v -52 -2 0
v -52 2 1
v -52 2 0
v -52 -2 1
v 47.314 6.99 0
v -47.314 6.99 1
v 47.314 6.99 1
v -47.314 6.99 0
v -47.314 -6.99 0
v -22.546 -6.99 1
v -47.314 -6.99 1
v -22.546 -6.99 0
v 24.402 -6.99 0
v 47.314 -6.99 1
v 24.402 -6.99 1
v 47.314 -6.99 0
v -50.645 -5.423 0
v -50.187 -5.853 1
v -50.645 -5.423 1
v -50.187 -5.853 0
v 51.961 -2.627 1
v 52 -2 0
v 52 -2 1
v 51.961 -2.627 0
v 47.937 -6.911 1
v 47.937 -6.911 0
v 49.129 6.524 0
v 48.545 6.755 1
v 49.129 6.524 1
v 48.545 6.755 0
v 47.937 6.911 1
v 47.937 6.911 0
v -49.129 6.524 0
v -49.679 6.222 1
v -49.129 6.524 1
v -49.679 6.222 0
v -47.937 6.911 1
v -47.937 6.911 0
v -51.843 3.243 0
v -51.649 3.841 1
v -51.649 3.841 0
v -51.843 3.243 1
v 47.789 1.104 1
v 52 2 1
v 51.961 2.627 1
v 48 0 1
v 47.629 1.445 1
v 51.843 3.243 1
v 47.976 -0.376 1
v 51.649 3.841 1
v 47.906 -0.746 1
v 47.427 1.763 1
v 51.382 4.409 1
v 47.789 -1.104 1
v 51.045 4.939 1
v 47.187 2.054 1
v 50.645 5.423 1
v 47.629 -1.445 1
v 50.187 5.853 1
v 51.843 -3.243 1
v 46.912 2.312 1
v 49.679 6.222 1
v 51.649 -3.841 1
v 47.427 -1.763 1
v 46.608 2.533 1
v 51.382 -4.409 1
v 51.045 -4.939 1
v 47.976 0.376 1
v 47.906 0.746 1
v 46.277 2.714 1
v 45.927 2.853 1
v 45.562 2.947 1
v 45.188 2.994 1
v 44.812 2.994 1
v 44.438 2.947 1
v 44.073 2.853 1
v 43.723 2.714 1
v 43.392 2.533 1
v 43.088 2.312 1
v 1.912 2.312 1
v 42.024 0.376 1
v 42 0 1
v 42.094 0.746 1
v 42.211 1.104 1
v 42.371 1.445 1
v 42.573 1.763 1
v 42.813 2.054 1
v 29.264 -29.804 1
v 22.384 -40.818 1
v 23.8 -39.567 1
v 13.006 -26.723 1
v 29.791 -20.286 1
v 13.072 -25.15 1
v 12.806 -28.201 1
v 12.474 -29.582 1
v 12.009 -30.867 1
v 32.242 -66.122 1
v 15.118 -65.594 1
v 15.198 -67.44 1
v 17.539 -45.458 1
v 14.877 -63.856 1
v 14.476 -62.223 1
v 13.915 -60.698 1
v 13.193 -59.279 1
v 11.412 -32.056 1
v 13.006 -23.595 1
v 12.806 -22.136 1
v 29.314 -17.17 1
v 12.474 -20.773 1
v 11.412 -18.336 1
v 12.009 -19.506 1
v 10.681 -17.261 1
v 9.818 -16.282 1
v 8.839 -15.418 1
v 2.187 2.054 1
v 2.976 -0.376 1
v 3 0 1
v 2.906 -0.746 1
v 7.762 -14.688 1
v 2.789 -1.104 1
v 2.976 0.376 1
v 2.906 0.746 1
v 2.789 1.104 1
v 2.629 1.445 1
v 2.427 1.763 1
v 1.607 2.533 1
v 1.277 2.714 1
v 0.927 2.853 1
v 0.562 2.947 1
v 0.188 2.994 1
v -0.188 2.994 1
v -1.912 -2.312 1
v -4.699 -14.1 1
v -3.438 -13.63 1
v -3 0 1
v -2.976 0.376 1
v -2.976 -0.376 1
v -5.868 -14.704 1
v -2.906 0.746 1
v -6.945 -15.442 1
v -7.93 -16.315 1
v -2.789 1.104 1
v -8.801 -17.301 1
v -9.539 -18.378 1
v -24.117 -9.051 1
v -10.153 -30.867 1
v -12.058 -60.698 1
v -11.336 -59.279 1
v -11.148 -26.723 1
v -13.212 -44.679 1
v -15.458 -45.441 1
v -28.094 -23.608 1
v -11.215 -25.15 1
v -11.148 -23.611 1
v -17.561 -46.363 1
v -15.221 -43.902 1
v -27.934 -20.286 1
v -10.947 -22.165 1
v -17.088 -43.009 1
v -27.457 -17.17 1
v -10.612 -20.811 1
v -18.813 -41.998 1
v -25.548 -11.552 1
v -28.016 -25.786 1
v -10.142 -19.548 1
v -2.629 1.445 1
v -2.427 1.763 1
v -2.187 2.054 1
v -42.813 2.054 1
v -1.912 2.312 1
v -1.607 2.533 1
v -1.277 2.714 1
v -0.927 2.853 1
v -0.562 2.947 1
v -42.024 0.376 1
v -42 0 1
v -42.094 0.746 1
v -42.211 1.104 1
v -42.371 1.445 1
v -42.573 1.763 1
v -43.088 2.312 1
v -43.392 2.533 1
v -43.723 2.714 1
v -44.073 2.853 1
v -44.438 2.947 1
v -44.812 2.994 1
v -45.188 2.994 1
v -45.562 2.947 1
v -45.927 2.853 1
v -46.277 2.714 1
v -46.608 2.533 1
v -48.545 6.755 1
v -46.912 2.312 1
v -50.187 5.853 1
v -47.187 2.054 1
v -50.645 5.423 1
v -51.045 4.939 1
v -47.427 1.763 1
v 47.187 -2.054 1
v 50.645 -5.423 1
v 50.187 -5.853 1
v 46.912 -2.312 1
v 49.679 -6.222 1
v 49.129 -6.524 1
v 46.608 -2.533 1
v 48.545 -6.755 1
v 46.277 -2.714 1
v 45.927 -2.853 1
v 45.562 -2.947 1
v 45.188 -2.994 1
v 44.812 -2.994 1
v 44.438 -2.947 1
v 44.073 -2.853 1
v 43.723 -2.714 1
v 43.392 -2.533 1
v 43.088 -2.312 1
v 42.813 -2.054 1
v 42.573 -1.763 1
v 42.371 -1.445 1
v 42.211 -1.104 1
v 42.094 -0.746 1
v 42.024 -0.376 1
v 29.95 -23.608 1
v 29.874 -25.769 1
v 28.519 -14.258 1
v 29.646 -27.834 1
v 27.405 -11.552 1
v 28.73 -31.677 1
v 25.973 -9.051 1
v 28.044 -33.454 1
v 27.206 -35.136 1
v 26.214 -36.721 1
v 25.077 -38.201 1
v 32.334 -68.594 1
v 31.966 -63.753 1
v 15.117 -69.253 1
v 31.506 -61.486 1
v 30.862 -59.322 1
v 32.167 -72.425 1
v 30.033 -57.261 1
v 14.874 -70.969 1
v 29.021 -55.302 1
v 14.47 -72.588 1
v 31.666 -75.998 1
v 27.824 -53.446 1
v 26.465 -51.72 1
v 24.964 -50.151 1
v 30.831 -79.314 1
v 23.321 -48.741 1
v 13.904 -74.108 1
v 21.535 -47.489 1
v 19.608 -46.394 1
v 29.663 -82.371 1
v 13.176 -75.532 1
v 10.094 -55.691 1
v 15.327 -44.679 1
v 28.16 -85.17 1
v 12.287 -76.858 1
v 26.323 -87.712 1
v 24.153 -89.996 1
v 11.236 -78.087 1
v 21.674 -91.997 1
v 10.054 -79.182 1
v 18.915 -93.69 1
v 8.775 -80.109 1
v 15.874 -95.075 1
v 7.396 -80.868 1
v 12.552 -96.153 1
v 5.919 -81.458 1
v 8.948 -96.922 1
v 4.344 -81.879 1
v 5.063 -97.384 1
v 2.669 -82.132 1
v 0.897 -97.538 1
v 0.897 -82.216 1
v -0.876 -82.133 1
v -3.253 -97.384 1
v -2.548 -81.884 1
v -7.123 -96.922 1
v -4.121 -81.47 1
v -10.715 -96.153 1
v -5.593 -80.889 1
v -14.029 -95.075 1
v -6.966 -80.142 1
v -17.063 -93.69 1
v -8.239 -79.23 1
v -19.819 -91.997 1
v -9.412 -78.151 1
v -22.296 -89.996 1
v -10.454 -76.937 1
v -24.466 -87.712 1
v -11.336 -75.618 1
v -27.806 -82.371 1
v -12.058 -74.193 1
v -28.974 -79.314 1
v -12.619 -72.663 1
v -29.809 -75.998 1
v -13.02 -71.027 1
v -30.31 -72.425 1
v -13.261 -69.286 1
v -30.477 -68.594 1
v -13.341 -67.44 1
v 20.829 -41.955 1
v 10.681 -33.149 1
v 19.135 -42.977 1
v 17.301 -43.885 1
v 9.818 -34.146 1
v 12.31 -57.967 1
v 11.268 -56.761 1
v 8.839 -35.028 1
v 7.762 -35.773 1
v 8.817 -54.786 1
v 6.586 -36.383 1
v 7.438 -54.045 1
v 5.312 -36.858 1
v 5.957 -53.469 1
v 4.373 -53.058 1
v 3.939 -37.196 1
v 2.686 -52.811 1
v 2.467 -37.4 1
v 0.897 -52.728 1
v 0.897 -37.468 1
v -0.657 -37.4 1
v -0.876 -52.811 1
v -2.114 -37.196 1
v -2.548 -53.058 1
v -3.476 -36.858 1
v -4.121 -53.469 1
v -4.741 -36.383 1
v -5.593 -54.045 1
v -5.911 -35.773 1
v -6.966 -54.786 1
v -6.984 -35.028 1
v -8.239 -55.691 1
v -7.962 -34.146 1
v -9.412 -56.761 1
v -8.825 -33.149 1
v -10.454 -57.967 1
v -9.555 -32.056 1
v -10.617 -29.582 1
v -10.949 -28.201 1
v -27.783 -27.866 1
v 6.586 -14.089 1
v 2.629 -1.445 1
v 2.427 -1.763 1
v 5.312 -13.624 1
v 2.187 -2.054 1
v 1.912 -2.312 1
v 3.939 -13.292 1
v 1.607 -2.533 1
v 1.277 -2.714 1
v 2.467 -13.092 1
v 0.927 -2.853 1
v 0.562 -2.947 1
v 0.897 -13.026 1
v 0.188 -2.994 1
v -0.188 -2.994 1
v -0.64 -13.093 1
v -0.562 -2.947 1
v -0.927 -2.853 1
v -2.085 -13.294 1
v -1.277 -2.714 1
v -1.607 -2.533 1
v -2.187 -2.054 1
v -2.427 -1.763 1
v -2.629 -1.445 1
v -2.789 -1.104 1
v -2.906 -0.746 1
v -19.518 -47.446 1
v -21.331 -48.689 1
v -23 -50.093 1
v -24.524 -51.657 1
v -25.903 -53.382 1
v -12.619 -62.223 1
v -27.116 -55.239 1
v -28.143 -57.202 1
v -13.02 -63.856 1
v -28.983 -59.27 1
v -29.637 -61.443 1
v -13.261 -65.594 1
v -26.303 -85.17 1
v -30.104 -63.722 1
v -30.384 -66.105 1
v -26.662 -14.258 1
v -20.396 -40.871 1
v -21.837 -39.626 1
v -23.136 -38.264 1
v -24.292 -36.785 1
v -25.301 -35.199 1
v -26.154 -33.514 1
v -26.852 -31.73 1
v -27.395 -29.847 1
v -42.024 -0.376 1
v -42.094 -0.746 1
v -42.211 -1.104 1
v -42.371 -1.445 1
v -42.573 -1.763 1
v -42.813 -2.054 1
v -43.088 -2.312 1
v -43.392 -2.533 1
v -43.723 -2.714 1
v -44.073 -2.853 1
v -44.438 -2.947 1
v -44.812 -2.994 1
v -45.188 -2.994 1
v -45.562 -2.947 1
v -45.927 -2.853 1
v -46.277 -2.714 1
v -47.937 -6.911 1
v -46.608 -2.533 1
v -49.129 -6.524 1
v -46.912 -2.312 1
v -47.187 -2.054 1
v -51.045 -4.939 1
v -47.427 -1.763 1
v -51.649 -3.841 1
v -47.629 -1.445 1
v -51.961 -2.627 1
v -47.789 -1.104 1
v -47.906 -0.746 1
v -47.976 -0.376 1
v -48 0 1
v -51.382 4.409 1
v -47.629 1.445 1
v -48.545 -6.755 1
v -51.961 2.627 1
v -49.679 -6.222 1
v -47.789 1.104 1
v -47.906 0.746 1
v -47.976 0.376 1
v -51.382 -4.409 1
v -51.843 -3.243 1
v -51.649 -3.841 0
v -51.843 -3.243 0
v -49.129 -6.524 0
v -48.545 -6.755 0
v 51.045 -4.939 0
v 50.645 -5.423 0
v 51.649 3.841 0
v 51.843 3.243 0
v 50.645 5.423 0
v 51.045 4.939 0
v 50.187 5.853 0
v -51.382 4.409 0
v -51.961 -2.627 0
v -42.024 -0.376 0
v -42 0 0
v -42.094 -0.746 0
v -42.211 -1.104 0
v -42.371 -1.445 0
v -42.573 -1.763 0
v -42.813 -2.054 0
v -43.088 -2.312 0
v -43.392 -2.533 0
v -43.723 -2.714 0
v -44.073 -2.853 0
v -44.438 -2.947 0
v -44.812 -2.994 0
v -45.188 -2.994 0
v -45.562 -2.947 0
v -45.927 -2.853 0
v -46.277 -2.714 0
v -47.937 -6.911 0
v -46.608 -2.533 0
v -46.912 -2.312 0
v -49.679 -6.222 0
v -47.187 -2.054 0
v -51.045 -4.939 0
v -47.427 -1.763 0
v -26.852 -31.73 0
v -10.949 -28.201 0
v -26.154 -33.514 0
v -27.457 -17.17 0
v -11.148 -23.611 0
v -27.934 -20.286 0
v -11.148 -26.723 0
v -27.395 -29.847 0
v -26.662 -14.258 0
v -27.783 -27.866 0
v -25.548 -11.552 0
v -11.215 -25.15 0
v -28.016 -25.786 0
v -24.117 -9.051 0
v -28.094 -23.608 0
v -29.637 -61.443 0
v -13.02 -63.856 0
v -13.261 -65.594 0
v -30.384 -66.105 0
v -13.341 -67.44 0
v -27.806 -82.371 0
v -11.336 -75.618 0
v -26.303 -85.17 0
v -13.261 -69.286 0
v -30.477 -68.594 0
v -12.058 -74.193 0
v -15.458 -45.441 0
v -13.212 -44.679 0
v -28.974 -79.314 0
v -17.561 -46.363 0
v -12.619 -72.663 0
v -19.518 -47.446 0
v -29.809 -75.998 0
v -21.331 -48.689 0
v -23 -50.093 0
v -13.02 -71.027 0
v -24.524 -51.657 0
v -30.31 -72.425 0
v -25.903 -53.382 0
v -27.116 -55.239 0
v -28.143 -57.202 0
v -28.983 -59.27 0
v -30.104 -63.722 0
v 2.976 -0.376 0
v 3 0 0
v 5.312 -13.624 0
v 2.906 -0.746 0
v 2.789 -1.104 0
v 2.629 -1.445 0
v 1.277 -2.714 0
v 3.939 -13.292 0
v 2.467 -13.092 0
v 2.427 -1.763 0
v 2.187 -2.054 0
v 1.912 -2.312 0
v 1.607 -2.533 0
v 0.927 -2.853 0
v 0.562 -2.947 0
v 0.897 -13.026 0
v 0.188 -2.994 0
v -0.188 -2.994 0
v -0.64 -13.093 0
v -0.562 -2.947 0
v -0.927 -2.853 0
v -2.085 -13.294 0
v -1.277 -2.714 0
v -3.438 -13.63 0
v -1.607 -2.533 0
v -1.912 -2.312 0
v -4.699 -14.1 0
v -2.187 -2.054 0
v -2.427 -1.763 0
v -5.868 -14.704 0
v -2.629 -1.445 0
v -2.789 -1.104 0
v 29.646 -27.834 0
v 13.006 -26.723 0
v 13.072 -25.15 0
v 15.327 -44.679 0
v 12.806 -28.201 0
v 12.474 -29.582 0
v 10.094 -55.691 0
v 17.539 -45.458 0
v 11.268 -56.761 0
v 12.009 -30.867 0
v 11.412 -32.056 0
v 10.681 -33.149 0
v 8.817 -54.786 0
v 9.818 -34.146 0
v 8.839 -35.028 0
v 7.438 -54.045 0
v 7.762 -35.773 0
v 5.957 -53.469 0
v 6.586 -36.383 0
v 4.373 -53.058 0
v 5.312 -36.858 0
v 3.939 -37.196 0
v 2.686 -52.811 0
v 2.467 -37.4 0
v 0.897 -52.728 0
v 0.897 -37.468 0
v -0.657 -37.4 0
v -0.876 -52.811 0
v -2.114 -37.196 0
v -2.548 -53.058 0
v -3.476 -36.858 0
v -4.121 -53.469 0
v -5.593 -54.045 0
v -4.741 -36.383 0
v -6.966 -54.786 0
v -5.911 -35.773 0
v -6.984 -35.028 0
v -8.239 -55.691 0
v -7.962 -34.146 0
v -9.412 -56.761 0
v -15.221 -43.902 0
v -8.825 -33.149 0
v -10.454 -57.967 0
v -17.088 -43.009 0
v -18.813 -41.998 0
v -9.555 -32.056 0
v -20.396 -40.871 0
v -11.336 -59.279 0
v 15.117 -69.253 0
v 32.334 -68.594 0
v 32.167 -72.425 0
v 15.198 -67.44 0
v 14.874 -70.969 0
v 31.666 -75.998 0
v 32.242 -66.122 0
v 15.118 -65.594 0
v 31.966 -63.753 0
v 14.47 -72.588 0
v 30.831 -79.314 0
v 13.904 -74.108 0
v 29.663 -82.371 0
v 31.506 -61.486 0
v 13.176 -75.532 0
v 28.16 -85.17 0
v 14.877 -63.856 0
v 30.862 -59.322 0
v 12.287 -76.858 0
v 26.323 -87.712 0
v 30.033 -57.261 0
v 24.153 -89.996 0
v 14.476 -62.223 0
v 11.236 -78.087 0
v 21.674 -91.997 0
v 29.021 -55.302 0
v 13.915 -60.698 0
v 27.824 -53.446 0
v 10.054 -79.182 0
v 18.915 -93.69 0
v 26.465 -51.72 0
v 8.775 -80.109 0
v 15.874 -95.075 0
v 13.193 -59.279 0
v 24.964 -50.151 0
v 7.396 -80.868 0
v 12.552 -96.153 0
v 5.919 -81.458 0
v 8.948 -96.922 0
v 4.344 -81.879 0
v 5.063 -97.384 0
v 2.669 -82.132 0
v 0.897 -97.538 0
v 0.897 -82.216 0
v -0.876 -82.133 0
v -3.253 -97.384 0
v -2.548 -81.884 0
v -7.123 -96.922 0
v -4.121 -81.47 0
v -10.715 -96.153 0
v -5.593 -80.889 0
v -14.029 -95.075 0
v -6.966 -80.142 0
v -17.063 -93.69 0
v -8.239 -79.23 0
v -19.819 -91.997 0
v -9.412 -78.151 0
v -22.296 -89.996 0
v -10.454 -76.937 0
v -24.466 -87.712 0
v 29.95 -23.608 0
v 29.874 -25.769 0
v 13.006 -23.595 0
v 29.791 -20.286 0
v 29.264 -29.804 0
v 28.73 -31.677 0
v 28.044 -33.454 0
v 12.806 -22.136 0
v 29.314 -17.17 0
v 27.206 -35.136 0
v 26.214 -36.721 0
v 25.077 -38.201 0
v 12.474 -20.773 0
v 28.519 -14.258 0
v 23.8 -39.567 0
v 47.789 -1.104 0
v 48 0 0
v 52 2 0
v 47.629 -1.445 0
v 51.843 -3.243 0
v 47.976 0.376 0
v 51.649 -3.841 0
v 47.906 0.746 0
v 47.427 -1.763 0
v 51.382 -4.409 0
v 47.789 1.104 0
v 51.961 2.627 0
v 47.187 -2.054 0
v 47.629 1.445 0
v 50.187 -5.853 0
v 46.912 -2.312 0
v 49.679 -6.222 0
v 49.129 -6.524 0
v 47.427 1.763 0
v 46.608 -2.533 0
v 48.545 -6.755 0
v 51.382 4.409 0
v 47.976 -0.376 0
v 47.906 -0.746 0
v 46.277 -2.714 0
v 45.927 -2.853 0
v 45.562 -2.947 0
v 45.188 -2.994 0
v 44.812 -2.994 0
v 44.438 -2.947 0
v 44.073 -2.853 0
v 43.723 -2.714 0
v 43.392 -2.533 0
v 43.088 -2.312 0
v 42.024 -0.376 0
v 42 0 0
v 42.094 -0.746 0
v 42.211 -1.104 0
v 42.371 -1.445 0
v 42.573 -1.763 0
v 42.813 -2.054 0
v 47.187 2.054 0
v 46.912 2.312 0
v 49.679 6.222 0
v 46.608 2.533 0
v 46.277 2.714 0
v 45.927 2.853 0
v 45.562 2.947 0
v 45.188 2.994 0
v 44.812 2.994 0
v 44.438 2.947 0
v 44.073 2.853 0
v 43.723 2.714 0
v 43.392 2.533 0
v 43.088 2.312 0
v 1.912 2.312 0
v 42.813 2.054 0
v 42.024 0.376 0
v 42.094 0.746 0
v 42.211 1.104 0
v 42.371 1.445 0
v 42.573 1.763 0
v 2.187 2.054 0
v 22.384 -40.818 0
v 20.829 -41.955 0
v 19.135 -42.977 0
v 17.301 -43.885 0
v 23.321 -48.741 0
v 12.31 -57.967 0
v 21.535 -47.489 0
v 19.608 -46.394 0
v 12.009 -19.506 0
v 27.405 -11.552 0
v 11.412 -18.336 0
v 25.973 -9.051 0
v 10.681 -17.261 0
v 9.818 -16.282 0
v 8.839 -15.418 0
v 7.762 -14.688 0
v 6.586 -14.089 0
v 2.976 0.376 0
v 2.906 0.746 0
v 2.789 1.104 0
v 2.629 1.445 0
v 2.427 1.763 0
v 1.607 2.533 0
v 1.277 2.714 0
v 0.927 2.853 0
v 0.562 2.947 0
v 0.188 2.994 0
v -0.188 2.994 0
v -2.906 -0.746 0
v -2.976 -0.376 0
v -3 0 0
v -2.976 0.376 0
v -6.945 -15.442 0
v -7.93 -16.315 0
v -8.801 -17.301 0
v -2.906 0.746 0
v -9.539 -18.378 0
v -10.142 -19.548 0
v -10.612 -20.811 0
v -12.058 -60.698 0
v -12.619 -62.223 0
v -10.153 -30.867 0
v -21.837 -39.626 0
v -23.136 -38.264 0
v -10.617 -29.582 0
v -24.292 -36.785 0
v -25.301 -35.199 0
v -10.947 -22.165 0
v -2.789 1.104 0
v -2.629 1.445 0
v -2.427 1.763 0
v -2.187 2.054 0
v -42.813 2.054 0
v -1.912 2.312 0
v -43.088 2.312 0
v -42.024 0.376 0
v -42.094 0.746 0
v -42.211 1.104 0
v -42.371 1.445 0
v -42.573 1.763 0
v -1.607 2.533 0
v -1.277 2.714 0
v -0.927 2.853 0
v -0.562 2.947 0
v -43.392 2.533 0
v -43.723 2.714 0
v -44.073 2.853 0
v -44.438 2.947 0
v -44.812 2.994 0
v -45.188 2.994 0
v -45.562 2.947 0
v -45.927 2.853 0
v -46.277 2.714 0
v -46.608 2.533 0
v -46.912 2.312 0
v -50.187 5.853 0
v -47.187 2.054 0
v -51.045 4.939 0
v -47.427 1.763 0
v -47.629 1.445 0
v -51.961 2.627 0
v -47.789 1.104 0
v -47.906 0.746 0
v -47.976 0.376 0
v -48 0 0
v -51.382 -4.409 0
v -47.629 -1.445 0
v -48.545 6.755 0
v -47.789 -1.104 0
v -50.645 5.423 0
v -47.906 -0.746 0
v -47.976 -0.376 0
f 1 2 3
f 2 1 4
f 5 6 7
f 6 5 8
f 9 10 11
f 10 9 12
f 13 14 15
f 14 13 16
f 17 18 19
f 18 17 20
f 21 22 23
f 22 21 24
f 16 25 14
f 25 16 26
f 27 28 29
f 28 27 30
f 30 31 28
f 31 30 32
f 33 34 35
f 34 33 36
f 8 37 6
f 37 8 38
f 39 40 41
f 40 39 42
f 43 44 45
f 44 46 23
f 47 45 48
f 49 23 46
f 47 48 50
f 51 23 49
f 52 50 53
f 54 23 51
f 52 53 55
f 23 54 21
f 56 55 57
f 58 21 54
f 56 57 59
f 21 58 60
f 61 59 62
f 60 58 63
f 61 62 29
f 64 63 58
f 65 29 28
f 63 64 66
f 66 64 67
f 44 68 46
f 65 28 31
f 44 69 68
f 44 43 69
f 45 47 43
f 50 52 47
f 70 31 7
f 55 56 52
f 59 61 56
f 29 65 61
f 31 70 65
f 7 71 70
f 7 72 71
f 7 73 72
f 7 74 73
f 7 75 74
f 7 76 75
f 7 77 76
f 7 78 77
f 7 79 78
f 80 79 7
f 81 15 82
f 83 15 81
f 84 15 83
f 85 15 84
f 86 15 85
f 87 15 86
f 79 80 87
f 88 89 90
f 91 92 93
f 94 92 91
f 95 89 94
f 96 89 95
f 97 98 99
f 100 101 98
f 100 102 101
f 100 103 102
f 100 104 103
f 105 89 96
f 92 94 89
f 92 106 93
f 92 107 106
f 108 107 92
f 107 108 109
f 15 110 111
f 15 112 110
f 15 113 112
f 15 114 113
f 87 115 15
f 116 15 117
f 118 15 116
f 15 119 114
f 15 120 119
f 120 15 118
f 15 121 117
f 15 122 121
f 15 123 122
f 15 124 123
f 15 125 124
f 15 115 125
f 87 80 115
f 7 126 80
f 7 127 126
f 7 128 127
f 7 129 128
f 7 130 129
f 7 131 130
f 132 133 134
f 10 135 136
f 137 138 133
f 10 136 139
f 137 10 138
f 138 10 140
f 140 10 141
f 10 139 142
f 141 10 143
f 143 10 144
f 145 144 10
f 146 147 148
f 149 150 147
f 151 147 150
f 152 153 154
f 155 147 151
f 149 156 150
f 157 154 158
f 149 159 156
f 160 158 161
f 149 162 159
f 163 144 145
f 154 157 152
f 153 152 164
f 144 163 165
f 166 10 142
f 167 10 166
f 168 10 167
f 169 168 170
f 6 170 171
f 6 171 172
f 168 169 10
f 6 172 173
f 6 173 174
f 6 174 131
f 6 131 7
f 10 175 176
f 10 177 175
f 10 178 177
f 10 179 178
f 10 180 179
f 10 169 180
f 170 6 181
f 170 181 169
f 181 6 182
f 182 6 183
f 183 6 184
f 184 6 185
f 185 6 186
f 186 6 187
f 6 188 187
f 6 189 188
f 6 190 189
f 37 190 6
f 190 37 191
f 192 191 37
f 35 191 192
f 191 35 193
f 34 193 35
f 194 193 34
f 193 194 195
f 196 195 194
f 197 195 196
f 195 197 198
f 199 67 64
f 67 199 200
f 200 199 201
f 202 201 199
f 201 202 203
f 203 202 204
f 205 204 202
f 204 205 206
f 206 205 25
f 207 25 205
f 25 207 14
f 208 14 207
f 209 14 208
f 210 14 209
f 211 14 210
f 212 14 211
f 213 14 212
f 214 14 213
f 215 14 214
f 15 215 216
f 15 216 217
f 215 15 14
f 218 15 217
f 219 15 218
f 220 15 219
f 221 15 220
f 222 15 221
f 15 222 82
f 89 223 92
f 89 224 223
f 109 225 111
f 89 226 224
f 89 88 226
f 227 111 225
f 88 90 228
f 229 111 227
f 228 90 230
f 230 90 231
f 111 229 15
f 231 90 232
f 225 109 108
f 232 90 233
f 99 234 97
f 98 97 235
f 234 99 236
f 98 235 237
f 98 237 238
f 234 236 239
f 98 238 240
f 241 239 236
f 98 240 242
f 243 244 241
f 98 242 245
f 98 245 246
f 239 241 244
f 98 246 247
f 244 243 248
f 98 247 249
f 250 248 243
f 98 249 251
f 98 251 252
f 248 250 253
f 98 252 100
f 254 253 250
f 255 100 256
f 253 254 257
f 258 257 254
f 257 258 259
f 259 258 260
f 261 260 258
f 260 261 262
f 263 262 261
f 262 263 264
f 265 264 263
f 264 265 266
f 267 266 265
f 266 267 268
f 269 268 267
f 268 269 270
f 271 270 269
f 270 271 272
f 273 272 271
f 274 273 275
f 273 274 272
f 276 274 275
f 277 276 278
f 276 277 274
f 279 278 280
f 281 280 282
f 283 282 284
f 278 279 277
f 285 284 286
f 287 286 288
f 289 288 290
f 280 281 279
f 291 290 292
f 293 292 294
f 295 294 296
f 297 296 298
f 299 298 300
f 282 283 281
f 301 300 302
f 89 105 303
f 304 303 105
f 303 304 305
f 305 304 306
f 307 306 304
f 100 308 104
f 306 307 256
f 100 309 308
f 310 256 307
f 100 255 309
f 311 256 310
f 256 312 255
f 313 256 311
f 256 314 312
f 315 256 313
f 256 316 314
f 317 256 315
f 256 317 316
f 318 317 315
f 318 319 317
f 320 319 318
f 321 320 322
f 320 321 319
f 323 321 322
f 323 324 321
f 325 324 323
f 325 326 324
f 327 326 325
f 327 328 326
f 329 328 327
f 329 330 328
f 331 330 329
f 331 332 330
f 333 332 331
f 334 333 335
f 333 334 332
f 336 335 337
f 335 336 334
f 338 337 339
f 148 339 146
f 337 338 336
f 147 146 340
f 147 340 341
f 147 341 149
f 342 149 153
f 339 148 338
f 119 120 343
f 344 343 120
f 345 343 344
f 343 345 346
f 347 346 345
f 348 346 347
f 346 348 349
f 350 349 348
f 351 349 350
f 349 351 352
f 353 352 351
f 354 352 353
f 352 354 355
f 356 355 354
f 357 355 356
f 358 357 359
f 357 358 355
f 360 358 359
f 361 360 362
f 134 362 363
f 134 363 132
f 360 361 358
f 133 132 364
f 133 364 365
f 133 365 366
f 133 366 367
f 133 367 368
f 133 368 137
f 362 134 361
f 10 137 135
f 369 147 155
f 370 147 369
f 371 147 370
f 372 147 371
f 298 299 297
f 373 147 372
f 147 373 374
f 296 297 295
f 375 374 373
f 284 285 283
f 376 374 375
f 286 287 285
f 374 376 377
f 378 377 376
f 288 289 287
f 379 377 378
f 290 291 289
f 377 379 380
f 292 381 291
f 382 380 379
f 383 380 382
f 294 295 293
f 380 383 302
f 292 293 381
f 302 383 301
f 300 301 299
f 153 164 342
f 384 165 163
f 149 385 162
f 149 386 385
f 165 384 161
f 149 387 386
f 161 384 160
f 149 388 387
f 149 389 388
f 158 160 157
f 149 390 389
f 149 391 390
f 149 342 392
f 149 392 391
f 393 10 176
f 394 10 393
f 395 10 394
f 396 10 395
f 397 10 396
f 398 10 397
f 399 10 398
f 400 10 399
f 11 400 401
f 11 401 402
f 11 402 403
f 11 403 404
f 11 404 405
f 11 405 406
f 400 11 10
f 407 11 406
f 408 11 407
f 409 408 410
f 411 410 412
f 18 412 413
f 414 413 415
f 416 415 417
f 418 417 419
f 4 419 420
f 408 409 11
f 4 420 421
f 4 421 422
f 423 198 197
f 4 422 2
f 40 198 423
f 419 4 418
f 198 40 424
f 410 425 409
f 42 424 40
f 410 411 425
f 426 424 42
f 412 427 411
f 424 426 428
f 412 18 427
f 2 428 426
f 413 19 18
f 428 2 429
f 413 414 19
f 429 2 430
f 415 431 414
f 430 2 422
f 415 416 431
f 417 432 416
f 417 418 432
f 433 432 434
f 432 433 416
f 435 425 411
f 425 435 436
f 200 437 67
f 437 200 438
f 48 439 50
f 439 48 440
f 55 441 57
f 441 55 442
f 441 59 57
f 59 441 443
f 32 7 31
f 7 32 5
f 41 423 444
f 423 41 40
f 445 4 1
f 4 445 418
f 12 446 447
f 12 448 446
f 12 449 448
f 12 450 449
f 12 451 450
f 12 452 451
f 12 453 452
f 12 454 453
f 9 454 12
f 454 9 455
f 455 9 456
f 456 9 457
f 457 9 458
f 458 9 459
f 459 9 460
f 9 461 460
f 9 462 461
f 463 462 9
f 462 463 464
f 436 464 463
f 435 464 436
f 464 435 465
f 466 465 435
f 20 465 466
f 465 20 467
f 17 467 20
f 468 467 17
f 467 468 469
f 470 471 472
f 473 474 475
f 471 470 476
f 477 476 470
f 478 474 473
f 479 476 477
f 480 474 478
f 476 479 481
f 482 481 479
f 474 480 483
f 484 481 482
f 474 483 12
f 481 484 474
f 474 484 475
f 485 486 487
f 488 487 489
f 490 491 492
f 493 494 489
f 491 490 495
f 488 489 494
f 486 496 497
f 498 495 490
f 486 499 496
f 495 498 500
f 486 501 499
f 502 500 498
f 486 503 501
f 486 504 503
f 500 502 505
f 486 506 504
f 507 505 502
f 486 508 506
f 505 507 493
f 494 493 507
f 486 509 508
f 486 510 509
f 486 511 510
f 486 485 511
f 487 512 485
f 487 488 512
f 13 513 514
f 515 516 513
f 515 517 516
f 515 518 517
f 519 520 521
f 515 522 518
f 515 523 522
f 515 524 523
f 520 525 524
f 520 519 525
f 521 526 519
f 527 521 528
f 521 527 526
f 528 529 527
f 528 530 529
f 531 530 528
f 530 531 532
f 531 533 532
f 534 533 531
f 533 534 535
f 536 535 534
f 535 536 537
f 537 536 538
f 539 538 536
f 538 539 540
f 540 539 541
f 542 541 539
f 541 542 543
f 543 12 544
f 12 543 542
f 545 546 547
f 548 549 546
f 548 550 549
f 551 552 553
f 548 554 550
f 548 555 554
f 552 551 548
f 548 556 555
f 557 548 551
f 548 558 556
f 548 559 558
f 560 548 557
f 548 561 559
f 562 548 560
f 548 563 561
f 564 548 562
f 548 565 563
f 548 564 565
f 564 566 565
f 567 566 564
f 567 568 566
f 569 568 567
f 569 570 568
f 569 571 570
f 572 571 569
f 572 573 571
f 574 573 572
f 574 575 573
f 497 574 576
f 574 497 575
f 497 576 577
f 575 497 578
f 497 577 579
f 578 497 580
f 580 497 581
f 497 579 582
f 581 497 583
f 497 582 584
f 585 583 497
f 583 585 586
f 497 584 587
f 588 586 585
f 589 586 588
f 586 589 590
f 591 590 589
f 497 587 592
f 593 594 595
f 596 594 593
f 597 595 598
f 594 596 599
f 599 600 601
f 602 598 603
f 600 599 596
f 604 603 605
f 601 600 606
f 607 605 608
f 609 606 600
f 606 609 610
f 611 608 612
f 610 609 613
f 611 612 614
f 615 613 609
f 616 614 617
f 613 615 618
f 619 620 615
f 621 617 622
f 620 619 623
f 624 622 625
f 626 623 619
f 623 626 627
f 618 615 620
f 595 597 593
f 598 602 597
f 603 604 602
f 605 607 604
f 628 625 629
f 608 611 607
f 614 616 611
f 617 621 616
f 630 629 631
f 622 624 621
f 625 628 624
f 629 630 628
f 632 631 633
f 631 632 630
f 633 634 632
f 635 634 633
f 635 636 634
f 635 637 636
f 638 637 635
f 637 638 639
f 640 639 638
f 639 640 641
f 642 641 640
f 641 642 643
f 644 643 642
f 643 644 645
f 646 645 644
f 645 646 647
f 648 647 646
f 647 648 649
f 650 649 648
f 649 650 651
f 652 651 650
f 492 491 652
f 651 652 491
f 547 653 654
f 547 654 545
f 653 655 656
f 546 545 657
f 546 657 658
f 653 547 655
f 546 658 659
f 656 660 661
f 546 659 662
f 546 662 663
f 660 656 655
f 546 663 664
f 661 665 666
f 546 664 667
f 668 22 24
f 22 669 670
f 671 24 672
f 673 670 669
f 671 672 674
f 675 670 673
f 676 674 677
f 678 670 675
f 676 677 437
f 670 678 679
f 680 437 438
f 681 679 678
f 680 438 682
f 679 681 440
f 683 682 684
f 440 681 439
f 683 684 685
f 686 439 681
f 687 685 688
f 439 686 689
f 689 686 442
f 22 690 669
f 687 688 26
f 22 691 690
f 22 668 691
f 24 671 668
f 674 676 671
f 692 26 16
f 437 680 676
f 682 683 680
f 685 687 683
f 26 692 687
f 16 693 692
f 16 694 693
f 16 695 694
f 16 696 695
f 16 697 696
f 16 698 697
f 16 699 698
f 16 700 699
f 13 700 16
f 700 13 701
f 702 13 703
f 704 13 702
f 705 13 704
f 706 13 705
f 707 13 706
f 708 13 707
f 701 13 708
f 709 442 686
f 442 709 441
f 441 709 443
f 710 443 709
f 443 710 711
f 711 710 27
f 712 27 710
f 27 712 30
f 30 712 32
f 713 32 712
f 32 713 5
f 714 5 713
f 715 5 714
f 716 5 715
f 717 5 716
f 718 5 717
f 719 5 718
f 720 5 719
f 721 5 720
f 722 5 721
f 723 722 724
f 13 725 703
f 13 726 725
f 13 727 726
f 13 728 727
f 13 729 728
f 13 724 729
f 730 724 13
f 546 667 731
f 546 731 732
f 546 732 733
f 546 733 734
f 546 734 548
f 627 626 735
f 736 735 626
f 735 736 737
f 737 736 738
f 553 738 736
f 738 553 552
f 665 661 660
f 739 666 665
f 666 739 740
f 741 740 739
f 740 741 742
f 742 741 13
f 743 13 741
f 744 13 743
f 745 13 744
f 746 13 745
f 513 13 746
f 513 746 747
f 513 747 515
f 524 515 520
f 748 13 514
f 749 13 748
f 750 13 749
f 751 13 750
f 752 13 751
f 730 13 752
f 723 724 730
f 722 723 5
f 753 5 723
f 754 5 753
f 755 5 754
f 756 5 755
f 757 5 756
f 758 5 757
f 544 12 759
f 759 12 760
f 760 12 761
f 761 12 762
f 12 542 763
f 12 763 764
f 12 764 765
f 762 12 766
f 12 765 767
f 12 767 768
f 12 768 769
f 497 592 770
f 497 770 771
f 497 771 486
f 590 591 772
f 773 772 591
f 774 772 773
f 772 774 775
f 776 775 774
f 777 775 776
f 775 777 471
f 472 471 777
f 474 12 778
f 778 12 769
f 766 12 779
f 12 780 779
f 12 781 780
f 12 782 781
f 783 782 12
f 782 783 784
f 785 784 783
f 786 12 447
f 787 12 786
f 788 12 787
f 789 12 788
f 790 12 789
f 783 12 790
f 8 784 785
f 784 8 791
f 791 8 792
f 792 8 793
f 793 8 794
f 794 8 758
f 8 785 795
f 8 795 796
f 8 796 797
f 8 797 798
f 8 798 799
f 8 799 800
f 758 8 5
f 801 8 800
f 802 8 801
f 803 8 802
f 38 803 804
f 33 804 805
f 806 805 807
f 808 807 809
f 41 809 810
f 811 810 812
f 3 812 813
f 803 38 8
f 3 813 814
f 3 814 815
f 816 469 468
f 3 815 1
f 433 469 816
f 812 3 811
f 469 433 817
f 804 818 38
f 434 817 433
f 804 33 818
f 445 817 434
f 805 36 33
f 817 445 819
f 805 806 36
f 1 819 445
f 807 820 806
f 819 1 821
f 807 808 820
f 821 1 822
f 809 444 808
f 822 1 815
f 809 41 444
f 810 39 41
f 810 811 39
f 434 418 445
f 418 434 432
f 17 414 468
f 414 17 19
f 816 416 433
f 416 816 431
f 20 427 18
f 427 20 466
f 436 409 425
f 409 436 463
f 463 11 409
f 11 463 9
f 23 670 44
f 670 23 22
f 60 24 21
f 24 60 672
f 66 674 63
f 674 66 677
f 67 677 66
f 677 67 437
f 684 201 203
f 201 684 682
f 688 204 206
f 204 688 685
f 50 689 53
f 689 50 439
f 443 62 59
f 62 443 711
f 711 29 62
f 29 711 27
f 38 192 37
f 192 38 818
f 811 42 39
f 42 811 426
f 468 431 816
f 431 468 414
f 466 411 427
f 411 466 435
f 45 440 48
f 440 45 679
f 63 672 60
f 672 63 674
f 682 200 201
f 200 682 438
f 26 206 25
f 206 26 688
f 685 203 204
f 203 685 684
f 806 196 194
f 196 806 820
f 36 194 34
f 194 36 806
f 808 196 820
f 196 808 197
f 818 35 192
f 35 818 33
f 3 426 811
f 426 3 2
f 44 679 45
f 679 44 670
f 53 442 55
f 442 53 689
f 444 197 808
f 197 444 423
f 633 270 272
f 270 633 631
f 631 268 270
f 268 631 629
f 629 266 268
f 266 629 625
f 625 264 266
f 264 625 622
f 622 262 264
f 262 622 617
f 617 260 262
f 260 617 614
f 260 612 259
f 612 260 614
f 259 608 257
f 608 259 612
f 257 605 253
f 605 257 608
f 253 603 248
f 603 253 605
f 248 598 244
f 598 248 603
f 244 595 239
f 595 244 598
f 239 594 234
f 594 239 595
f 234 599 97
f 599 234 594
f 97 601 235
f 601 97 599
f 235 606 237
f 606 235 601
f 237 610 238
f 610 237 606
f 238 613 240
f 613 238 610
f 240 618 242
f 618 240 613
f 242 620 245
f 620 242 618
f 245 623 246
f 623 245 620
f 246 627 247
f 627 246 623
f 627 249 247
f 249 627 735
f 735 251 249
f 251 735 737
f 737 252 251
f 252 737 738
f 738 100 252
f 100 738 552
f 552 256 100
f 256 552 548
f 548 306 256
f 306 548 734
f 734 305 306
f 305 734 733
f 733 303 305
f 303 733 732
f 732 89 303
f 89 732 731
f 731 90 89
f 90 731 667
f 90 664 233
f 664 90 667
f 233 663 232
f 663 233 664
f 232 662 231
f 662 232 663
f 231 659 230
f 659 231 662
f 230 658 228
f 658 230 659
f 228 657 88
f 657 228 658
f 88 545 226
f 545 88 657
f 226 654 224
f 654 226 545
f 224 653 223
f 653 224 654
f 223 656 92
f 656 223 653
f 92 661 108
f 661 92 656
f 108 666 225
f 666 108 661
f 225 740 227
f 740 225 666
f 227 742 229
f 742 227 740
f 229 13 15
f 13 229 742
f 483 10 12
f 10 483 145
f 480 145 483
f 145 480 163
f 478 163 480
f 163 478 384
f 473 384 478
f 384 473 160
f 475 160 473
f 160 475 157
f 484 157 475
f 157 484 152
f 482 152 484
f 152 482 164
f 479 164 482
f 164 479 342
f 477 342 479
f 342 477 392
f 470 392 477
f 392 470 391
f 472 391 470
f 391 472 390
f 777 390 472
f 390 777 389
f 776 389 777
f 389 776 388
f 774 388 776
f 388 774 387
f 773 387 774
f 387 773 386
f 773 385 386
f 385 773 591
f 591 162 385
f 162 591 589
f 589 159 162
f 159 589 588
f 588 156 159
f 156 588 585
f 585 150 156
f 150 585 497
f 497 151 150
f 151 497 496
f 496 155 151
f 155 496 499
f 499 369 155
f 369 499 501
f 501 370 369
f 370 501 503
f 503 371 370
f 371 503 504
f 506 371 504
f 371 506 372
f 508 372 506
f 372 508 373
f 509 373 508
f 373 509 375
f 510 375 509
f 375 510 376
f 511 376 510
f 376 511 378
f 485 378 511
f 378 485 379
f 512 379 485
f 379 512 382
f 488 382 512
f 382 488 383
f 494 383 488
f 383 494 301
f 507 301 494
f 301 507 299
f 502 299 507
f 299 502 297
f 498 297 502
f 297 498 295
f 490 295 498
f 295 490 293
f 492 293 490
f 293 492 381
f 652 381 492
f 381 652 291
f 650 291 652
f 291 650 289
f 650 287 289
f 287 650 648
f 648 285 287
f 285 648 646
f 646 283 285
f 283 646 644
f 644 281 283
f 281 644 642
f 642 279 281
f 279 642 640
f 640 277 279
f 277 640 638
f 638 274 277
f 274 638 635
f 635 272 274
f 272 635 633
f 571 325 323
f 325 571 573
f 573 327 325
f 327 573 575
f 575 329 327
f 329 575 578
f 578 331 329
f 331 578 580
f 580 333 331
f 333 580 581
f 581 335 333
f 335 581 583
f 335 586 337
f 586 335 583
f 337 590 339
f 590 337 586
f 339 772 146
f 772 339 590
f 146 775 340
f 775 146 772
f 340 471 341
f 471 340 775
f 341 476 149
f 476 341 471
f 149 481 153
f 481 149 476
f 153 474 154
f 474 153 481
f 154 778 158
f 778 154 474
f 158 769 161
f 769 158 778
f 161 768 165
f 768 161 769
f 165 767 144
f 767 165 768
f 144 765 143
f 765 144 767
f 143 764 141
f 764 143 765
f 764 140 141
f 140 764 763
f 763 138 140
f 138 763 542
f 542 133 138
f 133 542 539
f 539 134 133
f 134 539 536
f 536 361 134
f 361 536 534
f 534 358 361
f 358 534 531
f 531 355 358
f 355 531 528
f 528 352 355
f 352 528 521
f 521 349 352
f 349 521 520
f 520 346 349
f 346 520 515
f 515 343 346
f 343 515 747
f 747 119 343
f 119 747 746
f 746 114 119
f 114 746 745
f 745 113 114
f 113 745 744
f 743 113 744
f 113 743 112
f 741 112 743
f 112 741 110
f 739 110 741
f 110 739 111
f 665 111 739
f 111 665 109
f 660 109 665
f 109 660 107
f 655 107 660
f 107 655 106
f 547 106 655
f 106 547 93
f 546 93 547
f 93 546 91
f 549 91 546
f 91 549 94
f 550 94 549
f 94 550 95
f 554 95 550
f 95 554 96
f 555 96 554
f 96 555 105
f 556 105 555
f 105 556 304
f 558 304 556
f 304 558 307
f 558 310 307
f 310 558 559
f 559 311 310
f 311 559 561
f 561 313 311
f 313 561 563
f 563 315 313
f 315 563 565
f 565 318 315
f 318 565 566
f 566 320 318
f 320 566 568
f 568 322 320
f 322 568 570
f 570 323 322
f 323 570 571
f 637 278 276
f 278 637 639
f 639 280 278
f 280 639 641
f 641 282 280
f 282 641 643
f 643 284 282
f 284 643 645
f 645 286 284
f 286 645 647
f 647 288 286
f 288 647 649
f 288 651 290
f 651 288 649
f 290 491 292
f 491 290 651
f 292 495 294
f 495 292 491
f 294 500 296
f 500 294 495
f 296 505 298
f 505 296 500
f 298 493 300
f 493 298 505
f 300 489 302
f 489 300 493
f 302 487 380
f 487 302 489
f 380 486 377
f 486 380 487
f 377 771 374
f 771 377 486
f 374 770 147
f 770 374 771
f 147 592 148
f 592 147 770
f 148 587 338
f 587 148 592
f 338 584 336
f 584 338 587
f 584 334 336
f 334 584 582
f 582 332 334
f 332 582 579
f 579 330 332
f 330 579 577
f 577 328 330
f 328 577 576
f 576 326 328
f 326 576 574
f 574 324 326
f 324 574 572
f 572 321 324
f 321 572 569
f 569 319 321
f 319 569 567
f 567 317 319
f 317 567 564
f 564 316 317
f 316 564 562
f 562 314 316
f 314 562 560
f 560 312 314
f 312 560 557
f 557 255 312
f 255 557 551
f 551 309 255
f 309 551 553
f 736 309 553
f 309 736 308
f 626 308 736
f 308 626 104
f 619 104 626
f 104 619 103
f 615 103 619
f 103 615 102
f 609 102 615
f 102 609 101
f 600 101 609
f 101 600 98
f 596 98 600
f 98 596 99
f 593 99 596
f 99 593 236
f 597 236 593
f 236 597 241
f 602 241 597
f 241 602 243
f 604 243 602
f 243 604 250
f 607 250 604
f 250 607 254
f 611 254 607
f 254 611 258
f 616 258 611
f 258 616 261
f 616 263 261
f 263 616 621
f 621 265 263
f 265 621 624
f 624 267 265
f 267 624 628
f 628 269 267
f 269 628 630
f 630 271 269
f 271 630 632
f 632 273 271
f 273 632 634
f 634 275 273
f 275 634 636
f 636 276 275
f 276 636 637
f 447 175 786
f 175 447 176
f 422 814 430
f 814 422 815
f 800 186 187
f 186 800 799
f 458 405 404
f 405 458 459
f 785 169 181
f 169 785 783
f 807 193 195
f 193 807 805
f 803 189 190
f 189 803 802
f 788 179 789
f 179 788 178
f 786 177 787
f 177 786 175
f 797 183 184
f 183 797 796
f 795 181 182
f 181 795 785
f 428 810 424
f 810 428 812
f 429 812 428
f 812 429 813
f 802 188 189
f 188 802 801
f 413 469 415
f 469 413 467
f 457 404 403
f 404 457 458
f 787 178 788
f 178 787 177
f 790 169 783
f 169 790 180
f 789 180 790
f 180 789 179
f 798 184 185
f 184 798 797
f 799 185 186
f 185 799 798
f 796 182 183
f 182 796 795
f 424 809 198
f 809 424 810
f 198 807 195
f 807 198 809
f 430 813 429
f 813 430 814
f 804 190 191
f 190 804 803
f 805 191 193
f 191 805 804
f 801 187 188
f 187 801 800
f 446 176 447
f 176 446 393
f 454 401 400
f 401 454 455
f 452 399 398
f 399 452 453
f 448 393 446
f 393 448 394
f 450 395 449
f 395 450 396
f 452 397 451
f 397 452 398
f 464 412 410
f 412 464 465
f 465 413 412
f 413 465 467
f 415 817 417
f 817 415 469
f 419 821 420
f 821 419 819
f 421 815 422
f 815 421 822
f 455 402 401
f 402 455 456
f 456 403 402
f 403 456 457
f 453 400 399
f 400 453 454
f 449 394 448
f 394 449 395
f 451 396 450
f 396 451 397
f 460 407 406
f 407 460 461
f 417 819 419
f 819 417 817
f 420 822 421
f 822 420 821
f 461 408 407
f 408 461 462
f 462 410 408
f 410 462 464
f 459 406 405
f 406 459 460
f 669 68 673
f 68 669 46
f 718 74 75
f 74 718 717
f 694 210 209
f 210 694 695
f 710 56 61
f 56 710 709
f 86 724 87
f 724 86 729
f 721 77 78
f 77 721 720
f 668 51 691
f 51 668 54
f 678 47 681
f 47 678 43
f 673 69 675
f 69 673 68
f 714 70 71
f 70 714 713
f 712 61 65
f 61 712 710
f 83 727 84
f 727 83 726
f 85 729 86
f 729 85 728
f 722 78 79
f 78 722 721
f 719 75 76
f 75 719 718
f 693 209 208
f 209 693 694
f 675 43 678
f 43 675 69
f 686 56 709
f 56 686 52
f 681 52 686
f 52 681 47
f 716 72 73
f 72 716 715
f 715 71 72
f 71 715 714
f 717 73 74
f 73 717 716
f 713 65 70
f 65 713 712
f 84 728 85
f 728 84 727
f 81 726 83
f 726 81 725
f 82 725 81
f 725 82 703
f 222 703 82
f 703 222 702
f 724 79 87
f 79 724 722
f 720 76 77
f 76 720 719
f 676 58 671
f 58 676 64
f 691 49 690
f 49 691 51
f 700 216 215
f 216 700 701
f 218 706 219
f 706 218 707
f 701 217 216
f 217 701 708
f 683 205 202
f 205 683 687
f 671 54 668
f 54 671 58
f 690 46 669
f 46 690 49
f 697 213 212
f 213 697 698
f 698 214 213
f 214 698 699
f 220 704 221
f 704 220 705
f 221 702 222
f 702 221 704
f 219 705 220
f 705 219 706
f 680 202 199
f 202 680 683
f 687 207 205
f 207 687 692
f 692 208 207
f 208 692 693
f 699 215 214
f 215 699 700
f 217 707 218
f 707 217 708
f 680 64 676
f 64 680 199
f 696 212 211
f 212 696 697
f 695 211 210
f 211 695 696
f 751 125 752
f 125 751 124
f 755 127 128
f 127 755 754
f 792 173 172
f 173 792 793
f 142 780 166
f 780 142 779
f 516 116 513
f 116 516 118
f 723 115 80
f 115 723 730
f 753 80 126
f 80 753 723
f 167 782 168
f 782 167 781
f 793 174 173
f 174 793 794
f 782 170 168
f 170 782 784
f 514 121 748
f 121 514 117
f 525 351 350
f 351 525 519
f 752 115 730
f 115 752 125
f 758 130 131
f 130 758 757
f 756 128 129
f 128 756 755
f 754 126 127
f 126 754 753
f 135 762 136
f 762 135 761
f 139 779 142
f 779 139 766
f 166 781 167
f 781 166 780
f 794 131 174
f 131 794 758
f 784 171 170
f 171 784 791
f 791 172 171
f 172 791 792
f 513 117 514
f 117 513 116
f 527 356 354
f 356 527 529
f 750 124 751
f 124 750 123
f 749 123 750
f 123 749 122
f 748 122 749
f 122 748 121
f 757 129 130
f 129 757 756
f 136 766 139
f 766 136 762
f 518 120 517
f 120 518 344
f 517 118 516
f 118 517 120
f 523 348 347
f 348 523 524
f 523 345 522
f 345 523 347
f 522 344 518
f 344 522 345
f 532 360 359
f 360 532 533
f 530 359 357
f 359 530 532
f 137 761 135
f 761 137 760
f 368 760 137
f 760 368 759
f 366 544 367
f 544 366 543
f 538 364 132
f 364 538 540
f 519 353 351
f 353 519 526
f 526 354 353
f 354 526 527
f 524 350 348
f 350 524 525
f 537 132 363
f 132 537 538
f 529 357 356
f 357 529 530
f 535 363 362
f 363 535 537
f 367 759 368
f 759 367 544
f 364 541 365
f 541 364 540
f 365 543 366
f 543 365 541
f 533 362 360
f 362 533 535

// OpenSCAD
$fn = 50;


difference() {
	union() {
		translate(v = [0, 0, 0]) {
			rotate(a = [0, 0, 0]) {
				hull() {
					translate(v = [-47.0000000000, 2.0000000000, 0]) {
						rotate(a = [0, 0, 0]) {
							translate(v = [0, 0, 0]) {
								rotate(a = [0, 0, 0]) {
									cylinder(h = 1, r = 5);
								}
							}
						}
					}
					translate(v = [47.0000000000, 2.0000000000, 0]) {
						rotate(a = [0, 0, 0]) {
							translate(v = [0, 0, 0]) {
								rotate(a = [0, 0, 0]) {
									cylinder(h = 1, r = 5);
								}
							}
						}
					}
					translate(v = [-47.0000000000, -2.0000000000, 0]) {
						rotate(a = [0, 0, 0]) {
							translate(v = [0, 0, 0]) {
								rotate(a = [0, 0, 0]) {
									cylinder(h = 1, r = 5);
								}
							}
						}
					}
					translate(v = [47.0000000000, -2.0000000000, 0]) {
						rotate(a = [0, 0, 0]) {
							translate(v = [0, 0, 0]) {
								rotate(a = [0, 0, 0]) {
									cylinder(h = 1, r = 5);
								}
							}
						}
					}
				}
			}
		}
		translate(v = [0, 0, 0]) {
			rotate(a = [0, 0, 0]) {
				linear_extrude(height = 1) {
					text(font = "DejaVu Sans Mono:style=Bold", halign = "center", size = 95.0000000000, text = "8", valign = "top");
				}
			}
		}
	}
	union() {
		translate(v = [-45.0000000000, 0.0000000000, -125.0000000000]) {
			rotate(a = [0, 0, 0]) {
				cylinder(h = 250, r = 3.0000000000);
			}
		}
		translate(v = [45.0000000000, 0.0000000000, -125.0000000000]) {
			rotate(a = [0, 0, 0]) {
				cylinder(h = 250, r = 3.0000000000);
			}
		}
		translate(v = [45.0000000000, 0.0000000000, -125.0000000000]) {
			rotate(a = [0, 0, 0]) {
				cylinder(h = 250, r = 3.0000000000);
			}
		}
		translate(v = [0, 0, -125.0000000000]) {
			rotate(a = [0, 0, 0]) {
				cylinder(h = 250, r = 3.0000000000);
			}
		}
	}
}
